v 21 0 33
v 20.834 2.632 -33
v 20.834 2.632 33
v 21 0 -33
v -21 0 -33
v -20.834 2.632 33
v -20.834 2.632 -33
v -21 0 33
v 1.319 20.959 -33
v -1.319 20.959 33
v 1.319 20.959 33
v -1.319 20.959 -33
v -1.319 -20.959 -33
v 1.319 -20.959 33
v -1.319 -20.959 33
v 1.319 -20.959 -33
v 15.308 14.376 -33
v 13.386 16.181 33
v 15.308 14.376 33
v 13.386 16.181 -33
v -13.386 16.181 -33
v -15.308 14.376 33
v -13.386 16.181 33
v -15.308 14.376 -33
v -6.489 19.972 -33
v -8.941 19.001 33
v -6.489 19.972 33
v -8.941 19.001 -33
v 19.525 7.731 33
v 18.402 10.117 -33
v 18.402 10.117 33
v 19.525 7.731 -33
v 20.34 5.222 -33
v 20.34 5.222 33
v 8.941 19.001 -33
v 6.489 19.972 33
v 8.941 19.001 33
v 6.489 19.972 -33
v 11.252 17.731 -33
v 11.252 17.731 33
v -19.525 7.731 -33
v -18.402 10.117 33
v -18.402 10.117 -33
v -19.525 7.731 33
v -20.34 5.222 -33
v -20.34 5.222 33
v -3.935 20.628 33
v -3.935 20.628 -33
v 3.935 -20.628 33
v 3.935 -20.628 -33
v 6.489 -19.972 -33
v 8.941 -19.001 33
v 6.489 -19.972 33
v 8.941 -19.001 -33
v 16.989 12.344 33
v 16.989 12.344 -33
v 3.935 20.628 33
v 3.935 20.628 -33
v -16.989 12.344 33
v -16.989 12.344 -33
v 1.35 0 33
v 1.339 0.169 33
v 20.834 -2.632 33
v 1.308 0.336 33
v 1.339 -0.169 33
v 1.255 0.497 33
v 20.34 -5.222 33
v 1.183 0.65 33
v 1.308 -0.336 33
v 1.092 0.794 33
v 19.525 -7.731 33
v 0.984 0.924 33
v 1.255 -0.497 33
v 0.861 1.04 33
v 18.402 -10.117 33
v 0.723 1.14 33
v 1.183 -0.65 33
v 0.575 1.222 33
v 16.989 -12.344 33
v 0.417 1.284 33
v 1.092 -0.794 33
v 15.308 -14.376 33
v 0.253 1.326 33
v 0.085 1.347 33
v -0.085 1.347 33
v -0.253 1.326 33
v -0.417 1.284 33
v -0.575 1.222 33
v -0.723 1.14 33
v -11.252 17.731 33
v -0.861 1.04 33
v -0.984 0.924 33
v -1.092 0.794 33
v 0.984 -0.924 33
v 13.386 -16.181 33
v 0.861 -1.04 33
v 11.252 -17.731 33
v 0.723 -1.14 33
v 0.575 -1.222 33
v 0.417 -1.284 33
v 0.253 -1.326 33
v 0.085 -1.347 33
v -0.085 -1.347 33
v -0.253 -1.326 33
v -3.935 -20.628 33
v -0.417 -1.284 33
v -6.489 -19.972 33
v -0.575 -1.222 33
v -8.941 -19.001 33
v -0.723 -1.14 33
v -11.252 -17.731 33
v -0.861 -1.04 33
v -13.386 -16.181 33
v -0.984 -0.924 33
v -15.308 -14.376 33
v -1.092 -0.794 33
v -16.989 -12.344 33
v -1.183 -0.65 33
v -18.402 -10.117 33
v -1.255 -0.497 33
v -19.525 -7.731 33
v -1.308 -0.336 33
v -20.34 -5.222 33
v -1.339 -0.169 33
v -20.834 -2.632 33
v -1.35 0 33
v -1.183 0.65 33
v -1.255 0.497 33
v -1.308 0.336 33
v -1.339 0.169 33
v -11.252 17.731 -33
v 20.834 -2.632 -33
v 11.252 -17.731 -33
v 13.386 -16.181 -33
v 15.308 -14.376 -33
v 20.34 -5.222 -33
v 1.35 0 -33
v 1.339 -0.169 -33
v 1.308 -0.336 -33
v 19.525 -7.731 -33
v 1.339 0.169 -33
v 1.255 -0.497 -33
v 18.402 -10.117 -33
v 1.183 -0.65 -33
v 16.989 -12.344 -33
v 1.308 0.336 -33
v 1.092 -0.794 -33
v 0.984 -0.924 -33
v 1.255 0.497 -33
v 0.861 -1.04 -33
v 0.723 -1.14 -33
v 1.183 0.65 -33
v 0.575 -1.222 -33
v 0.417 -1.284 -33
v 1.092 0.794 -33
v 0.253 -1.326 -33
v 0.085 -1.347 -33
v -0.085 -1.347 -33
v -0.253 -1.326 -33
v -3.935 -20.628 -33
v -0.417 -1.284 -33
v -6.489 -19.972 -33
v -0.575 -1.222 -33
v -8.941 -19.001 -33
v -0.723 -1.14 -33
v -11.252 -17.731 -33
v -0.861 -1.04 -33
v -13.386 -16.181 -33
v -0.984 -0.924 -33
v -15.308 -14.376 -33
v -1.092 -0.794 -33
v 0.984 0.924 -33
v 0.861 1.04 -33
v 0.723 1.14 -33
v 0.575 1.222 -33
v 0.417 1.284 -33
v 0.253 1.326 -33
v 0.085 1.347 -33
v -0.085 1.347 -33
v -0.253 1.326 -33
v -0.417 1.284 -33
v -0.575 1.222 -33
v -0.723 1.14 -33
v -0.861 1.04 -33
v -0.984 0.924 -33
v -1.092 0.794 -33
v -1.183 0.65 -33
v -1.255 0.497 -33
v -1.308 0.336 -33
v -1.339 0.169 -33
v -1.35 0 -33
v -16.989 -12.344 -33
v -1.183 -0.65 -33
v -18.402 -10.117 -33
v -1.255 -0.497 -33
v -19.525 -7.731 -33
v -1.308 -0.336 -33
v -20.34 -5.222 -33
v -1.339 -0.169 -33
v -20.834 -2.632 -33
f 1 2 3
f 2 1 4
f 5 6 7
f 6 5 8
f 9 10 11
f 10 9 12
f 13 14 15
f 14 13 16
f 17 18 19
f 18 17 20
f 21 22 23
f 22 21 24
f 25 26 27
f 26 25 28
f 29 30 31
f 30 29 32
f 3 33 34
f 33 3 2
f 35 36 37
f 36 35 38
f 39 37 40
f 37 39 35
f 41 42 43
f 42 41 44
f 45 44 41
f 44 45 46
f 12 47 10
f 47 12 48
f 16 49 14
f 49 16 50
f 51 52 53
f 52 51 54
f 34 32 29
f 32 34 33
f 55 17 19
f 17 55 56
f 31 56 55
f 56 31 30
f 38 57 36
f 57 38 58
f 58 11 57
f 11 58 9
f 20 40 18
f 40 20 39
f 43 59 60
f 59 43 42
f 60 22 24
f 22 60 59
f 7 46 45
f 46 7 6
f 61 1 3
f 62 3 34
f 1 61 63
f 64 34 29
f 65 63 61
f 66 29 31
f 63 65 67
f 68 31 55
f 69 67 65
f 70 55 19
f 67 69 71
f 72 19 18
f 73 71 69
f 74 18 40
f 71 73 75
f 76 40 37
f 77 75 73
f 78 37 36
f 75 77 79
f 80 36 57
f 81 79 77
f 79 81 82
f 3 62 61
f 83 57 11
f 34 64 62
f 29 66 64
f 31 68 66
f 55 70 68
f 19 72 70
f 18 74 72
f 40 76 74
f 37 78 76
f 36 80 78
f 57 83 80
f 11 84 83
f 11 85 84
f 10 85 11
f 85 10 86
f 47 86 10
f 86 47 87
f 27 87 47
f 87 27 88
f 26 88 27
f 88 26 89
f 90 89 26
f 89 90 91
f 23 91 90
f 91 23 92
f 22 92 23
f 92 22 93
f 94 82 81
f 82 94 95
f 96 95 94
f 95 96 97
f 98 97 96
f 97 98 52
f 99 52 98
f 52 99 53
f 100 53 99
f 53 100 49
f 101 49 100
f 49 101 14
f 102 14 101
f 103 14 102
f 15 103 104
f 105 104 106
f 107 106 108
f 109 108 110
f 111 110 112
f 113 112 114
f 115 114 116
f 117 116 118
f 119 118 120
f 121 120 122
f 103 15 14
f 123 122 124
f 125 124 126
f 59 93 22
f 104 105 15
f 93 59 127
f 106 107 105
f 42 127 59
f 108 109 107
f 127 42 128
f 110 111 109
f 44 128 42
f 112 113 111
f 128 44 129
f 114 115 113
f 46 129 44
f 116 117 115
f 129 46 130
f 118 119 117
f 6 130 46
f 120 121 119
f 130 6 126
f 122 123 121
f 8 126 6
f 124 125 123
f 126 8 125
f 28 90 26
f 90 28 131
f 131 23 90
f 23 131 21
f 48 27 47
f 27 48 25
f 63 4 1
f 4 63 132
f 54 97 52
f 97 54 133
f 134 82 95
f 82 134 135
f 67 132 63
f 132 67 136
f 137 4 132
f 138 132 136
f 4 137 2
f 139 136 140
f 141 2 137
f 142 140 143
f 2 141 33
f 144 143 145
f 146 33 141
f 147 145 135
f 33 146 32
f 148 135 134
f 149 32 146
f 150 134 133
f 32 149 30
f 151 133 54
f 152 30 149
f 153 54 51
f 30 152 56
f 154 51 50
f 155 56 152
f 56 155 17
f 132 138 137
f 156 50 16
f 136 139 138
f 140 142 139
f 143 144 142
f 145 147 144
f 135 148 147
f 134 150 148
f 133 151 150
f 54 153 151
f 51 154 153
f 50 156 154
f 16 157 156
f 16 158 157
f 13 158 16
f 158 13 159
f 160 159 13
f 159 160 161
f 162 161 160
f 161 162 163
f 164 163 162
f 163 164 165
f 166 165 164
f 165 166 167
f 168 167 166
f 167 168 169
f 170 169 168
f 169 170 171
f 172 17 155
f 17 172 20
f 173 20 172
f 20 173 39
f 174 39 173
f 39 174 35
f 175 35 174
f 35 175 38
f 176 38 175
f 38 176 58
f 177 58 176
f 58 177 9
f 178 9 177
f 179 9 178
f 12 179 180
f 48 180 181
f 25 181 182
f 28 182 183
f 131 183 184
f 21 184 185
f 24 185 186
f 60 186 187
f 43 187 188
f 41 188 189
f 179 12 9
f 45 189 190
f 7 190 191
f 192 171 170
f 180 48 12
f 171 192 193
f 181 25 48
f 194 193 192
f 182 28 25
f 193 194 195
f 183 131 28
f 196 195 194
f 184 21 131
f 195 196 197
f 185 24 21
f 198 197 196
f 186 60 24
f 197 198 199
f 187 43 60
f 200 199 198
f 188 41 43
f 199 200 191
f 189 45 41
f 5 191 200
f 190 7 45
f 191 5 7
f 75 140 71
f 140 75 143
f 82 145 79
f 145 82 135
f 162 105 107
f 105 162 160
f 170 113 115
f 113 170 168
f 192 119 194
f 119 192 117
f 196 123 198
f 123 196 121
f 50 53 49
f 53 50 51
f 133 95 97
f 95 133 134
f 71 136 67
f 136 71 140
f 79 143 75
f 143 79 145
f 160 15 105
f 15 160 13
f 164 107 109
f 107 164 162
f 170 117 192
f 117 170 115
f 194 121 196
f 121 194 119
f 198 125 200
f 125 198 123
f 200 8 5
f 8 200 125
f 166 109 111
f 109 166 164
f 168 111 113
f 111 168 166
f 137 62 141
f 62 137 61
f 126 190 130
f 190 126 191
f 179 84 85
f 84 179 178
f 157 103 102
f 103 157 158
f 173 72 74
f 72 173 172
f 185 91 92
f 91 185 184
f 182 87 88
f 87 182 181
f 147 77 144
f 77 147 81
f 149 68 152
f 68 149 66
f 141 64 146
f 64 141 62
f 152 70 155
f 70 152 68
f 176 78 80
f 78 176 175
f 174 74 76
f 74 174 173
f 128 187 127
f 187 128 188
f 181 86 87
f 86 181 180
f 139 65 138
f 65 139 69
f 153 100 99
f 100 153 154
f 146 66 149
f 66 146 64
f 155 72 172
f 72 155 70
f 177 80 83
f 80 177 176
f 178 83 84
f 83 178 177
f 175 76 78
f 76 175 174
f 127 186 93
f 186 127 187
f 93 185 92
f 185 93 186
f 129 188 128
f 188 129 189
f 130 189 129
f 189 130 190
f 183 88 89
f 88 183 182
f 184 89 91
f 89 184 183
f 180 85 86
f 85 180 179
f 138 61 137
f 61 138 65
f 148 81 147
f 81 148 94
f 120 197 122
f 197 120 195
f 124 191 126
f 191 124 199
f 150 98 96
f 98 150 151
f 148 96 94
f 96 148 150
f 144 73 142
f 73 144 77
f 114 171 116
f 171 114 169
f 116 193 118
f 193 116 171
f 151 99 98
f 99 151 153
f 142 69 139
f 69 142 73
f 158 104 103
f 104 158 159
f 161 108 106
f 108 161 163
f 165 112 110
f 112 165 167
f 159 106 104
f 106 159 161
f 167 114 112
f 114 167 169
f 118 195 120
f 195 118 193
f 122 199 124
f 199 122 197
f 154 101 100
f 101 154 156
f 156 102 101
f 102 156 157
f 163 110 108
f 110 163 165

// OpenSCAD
$fn = 50;


difference() {
	union() {
		translate(v = [0, 0, -33.0000000000]) {
			cylinder(h = 66, r = 21.0000000000);
		}
	}
	union() {
		translate(v = [0, 0, -100.0000000000]) {
			cylinder(h = 200, r = 1.3500000000);
		}
	}
}
